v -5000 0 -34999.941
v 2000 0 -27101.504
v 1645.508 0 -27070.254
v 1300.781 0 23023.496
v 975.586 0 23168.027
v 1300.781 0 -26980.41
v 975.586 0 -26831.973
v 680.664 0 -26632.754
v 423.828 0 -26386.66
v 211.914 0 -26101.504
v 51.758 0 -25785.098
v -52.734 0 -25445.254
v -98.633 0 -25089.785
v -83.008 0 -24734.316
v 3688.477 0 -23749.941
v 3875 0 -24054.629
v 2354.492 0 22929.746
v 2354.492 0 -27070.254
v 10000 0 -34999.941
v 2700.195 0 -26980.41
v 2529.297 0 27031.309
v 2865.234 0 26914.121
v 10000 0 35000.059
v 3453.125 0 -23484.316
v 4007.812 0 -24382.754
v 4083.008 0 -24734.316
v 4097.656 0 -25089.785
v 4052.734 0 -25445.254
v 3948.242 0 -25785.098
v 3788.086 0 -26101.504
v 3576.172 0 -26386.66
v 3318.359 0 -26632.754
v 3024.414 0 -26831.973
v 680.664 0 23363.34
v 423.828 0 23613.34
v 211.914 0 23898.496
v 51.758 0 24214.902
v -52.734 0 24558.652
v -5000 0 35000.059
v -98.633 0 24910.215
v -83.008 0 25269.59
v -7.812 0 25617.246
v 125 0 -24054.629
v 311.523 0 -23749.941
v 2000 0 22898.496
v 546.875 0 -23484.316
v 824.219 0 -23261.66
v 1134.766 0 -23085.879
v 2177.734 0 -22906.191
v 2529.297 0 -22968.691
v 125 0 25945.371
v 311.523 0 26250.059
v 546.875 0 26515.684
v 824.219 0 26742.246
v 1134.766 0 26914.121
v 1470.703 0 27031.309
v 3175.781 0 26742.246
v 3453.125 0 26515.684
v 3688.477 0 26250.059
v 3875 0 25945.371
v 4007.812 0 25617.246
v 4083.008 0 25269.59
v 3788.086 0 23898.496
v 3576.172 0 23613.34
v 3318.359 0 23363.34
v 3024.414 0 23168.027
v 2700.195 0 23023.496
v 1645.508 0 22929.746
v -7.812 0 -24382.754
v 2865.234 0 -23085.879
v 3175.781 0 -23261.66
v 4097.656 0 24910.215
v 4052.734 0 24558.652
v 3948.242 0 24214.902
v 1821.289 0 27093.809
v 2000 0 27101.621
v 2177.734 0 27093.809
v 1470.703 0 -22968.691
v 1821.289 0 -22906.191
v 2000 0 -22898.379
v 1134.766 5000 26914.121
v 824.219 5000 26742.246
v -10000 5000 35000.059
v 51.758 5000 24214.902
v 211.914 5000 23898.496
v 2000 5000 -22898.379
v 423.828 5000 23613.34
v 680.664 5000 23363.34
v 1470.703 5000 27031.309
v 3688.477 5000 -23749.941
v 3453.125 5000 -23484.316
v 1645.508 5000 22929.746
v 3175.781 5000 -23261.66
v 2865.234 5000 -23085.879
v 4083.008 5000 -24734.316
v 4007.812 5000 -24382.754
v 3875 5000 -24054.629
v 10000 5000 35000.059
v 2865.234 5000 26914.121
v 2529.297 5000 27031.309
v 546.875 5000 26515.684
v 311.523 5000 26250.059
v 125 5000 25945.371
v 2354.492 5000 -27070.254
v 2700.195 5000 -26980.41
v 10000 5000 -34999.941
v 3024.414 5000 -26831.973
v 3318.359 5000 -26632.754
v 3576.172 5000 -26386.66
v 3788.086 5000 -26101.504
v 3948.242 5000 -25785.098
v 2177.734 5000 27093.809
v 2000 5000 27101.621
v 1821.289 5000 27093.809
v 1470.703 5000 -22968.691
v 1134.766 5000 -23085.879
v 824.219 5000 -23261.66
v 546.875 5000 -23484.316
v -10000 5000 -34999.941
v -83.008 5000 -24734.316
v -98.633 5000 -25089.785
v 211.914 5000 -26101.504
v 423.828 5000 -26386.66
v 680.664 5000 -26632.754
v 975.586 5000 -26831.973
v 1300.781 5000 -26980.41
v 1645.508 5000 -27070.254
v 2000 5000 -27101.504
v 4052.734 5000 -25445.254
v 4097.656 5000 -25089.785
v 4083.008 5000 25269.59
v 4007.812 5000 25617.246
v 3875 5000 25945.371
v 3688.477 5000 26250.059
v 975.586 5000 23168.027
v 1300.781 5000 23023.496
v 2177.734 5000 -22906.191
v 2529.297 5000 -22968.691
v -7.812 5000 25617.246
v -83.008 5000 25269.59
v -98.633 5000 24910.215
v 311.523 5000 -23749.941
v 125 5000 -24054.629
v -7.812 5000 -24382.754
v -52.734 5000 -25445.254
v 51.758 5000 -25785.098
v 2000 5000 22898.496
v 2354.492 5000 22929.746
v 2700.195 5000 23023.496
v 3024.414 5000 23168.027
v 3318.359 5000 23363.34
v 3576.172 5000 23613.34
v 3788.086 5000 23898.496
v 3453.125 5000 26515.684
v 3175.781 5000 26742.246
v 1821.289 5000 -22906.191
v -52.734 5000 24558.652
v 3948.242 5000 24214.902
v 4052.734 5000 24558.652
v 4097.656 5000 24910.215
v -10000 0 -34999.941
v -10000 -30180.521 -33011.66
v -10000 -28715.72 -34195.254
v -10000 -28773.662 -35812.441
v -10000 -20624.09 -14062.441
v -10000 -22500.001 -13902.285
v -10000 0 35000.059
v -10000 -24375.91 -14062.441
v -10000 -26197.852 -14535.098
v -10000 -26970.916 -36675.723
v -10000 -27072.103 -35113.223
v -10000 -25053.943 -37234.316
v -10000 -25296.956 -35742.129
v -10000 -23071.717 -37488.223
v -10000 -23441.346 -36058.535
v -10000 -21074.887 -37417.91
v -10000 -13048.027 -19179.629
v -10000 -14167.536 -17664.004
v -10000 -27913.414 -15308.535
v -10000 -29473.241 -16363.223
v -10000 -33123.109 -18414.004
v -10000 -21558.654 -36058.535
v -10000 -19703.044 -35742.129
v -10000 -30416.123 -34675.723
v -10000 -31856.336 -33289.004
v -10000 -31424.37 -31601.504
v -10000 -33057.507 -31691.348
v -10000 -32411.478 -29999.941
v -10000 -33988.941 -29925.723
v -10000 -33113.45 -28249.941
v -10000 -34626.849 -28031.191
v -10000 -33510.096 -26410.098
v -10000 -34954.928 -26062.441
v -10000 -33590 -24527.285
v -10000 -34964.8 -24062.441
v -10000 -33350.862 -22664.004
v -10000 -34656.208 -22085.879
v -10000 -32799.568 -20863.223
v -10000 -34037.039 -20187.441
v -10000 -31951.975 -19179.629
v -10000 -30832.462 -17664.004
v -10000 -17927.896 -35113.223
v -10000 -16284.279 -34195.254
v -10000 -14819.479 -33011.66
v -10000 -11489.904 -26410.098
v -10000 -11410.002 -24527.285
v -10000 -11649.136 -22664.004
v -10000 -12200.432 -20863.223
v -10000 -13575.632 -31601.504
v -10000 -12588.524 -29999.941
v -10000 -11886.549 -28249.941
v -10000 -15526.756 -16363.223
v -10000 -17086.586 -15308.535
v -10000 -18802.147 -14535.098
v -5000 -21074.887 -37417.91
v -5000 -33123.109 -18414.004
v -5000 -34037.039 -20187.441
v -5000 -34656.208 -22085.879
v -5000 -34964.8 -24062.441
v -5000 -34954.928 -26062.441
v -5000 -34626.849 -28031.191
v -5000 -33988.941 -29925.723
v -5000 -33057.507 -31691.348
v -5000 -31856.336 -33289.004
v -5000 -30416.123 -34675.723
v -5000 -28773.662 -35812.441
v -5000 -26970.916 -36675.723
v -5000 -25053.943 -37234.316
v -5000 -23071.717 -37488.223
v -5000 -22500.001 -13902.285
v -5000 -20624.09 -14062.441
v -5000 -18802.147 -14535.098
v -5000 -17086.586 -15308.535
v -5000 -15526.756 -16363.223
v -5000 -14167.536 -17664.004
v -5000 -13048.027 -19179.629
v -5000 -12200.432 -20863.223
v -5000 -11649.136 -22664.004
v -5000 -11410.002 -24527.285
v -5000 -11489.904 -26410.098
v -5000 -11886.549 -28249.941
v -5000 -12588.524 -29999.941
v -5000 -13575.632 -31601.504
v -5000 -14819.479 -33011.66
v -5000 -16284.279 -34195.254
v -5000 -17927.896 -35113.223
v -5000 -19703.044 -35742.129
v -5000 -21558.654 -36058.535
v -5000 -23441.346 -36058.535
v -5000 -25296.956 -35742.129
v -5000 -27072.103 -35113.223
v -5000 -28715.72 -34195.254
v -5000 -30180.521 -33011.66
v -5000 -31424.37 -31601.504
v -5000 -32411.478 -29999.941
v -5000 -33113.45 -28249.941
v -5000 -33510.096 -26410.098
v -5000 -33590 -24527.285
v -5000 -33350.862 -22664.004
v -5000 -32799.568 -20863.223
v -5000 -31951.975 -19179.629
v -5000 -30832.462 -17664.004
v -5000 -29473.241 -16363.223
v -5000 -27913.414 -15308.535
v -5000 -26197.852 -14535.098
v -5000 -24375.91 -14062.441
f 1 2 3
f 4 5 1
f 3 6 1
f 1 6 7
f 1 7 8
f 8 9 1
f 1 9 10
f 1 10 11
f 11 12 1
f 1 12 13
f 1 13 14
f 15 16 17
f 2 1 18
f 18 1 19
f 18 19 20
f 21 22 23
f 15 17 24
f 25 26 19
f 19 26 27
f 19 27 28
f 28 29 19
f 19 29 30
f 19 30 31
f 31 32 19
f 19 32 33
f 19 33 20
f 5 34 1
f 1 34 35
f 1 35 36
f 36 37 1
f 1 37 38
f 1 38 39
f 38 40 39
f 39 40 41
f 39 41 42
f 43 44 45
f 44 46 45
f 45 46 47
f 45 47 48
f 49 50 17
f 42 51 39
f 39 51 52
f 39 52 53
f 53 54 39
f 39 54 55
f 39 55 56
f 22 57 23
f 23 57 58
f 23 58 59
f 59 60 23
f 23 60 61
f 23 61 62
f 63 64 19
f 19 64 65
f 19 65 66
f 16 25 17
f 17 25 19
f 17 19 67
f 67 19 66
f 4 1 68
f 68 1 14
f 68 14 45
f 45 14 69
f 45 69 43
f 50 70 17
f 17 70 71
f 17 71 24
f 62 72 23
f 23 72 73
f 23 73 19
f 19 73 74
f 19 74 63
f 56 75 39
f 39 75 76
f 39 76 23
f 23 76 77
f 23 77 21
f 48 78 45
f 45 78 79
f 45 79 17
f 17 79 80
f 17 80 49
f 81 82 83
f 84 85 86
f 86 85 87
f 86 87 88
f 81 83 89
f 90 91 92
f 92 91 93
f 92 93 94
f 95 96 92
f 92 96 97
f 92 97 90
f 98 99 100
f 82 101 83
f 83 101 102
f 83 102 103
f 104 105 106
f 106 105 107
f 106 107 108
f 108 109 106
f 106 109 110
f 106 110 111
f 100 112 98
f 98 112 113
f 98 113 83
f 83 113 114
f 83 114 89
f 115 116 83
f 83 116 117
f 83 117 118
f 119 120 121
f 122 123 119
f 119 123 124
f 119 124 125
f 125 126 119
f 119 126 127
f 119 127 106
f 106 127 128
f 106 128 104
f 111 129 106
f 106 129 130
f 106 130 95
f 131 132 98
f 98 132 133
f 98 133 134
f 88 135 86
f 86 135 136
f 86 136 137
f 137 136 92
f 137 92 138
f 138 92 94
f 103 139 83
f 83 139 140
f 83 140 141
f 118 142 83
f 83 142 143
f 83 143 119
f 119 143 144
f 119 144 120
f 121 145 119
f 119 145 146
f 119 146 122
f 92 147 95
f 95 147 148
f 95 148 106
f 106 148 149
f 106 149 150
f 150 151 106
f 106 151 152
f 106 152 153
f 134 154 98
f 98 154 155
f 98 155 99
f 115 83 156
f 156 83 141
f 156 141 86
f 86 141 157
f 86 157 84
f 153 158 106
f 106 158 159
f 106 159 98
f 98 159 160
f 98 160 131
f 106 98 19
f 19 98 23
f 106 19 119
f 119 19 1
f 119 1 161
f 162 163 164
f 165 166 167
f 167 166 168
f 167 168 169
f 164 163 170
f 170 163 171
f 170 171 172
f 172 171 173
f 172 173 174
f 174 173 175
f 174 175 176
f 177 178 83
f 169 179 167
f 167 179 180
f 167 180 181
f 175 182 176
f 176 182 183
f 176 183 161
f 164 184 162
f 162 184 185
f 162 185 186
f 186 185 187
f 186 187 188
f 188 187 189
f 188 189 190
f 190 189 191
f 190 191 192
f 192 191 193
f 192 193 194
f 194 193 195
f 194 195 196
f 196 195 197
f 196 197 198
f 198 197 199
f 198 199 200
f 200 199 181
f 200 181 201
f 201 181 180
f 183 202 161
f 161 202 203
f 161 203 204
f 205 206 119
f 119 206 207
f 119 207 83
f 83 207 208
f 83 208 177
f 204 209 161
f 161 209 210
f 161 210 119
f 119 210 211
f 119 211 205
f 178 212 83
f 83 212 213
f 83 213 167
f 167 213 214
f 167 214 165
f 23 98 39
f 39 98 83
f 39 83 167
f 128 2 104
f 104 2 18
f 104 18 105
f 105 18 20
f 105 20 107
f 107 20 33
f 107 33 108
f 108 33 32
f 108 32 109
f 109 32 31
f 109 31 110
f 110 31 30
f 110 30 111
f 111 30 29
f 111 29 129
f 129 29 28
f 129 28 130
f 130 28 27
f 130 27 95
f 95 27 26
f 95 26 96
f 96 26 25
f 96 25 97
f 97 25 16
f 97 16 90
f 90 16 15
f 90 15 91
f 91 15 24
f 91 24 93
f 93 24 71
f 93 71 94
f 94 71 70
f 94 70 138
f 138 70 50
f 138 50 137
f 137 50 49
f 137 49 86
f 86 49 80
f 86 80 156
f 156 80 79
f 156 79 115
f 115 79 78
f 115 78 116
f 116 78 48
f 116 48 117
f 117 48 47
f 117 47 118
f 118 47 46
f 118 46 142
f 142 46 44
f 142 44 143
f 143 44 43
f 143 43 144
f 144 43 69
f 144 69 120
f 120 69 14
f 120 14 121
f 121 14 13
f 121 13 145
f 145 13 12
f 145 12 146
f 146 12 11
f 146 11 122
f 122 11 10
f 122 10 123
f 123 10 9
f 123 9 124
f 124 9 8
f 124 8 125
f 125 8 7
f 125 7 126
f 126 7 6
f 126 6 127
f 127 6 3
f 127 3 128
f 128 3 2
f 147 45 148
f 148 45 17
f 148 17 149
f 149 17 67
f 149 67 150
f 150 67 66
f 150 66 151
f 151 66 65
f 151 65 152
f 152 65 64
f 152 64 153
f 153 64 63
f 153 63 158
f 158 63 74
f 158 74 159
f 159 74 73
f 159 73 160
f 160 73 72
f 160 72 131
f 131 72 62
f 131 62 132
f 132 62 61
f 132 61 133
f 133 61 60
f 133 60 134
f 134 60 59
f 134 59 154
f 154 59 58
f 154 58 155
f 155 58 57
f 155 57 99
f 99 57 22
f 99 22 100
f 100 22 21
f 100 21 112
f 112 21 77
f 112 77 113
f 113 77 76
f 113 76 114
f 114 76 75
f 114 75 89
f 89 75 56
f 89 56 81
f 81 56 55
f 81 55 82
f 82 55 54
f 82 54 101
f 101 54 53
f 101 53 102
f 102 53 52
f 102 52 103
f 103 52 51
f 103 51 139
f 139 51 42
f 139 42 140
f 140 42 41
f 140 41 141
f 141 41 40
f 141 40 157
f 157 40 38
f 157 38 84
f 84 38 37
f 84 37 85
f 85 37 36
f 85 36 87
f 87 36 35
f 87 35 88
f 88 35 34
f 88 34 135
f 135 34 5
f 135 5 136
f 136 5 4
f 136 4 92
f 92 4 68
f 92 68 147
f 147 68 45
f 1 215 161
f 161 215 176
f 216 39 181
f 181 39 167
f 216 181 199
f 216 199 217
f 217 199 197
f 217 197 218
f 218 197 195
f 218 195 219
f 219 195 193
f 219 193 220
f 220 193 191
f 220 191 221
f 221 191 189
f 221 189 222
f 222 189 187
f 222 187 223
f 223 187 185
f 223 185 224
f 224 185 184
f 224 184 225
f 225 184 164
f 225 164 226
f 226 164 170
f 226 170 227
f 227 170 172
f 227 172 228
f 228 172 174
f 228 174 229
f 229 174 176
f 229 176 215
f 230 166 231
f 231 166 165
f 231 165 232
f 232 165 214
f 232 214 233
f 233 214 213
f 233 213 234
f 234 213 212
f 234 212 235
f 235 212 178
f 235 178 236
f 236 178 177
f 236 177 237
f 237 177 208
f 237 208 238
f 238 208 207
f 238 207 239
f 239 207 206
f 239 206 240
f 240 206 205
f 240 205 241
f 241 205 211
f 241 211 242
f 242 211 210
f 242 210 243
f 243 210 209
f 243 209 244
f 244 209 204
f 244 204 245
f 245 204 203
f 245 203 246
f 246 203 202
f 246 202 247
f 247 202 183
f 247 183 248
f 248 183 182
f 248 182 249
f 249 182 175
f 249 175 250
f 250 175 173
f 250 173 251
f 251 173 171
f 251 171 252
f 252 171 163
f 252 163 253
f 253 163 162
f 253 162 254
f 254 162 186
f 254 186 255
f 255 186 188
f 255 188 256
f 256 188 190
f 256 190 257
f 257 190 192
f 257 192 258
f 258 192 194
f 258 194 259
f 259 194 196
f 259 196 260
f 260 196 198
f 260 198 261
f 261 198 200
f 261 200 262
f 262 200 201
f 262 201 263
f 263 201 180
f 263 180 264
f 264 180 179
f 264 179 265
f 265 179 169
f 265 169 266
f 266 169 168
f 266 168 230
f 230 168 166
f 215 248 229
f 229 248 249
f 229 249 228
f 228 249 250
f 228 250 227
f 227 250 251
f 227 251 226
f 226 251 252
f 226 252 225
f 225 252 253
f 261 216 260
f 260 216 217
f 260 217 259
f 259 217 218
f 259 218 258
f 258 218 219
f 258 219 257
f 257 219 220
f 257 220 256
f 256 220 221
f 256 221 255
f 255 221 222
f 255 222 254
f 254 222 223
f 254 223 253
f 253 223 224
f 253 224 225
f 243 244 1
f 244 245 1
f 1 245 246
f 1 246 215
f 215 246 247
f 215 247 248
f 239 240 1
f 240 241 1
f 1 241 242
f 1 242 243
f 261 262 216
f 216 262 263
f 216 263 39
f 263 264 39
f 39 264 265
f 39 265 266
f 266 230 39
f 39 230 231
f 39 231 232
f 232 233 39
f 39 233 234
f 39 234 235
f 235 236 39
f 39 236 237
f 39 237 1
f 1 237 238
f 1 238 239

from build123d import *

# Parameters (mm, degrees)
SKETCH_1_W          = 20000
SKETCH_1_H          = 70000
SKETCH_1_R          = 2100
EXTRUDE_1_DEPTH     = 5000
EXTRUDE_4_DEPTH     = 5000
SKETCH_2_7_R        = 11100
EXTRUDE_5_DEPTH     = 5000
SKETCH_3_W          = 17634.57068131
SKETCH_3_H          = 22931.716444608
CUT_EXTRUDE_1_DEPTH = 24449


with BuildPart() as part:
    # 草圖1 → 填料-伸長1 (new body)
    with BuildSketch(Plane(origin=(0, 0, 0), x_dir=(1, 0, 0), z_dir=(0, 1, 0))):
        Rectangle(SKETCH_1_W, SKETCH_1_H)
        with Locations((2000, 25000)):
            Circle(SKETCH_1_R, mode=Mode.SUBTRACT)
        with Locations((2000, -25000)):
            Circle(SKETCH_1_R, mode=Mode.SUBTRACT)
    extrude(amount=EXTRUDE_1_DEPTH)

    # 草圖2<7> → 填料-伸長5 (add)
    with BuildSketch(Plane.ZY.offset(10000)):
        with BuildLine():
            Line((35000, 0), (-35000, 0))
            Line((-35000, 0), (-37418.496439194, -21074.887306309))
            ThreePointArc((-37418.496439194, -21074.887306309), (-31692.464058642, -33057.505615617), (-18412.167206629, -33123.109671211))
            Line((-18412.167206629, -33123.109671211), (35000, 0))
        make_face()
        with Locations((-25000, -22500)):
            Circle(SKETCH_2_7_R, mode=Mode.SUBTRACT)
    extrude(amount=-EXTRUDE_5_DEPTH)


with BuildPart() as body_2:
    # 草圖2 → 填料-伸長4 (new body)
    with BuildSketch(Plane.ZY.offset(10000)):
        with BuildLine():
            ThreePointArc((-37500, 27500), (-37423.54668342, 26119.605924064), (-37195.12195122, 24756.097560976))
            Line((-37195.12195122, 24756.097560976), (-37500, 27500))
        make_face()
    extrude(amount=-EXTRUDE_4_DEPTH)

    # 草圖3 → 除料-伸長1 (cut)
    with BuildSketch(Plane.ZY.offset(10000)):
        with Locations((-31332.50292694, 16465.858222304)):
            Rectangle(SKETCH_3_W, SKETCH_3_H)
    extrude(amount=-CUT_EXTRUDE_1_DEPTH, mode=Mode.SUBTRACT)


solid = part.part
